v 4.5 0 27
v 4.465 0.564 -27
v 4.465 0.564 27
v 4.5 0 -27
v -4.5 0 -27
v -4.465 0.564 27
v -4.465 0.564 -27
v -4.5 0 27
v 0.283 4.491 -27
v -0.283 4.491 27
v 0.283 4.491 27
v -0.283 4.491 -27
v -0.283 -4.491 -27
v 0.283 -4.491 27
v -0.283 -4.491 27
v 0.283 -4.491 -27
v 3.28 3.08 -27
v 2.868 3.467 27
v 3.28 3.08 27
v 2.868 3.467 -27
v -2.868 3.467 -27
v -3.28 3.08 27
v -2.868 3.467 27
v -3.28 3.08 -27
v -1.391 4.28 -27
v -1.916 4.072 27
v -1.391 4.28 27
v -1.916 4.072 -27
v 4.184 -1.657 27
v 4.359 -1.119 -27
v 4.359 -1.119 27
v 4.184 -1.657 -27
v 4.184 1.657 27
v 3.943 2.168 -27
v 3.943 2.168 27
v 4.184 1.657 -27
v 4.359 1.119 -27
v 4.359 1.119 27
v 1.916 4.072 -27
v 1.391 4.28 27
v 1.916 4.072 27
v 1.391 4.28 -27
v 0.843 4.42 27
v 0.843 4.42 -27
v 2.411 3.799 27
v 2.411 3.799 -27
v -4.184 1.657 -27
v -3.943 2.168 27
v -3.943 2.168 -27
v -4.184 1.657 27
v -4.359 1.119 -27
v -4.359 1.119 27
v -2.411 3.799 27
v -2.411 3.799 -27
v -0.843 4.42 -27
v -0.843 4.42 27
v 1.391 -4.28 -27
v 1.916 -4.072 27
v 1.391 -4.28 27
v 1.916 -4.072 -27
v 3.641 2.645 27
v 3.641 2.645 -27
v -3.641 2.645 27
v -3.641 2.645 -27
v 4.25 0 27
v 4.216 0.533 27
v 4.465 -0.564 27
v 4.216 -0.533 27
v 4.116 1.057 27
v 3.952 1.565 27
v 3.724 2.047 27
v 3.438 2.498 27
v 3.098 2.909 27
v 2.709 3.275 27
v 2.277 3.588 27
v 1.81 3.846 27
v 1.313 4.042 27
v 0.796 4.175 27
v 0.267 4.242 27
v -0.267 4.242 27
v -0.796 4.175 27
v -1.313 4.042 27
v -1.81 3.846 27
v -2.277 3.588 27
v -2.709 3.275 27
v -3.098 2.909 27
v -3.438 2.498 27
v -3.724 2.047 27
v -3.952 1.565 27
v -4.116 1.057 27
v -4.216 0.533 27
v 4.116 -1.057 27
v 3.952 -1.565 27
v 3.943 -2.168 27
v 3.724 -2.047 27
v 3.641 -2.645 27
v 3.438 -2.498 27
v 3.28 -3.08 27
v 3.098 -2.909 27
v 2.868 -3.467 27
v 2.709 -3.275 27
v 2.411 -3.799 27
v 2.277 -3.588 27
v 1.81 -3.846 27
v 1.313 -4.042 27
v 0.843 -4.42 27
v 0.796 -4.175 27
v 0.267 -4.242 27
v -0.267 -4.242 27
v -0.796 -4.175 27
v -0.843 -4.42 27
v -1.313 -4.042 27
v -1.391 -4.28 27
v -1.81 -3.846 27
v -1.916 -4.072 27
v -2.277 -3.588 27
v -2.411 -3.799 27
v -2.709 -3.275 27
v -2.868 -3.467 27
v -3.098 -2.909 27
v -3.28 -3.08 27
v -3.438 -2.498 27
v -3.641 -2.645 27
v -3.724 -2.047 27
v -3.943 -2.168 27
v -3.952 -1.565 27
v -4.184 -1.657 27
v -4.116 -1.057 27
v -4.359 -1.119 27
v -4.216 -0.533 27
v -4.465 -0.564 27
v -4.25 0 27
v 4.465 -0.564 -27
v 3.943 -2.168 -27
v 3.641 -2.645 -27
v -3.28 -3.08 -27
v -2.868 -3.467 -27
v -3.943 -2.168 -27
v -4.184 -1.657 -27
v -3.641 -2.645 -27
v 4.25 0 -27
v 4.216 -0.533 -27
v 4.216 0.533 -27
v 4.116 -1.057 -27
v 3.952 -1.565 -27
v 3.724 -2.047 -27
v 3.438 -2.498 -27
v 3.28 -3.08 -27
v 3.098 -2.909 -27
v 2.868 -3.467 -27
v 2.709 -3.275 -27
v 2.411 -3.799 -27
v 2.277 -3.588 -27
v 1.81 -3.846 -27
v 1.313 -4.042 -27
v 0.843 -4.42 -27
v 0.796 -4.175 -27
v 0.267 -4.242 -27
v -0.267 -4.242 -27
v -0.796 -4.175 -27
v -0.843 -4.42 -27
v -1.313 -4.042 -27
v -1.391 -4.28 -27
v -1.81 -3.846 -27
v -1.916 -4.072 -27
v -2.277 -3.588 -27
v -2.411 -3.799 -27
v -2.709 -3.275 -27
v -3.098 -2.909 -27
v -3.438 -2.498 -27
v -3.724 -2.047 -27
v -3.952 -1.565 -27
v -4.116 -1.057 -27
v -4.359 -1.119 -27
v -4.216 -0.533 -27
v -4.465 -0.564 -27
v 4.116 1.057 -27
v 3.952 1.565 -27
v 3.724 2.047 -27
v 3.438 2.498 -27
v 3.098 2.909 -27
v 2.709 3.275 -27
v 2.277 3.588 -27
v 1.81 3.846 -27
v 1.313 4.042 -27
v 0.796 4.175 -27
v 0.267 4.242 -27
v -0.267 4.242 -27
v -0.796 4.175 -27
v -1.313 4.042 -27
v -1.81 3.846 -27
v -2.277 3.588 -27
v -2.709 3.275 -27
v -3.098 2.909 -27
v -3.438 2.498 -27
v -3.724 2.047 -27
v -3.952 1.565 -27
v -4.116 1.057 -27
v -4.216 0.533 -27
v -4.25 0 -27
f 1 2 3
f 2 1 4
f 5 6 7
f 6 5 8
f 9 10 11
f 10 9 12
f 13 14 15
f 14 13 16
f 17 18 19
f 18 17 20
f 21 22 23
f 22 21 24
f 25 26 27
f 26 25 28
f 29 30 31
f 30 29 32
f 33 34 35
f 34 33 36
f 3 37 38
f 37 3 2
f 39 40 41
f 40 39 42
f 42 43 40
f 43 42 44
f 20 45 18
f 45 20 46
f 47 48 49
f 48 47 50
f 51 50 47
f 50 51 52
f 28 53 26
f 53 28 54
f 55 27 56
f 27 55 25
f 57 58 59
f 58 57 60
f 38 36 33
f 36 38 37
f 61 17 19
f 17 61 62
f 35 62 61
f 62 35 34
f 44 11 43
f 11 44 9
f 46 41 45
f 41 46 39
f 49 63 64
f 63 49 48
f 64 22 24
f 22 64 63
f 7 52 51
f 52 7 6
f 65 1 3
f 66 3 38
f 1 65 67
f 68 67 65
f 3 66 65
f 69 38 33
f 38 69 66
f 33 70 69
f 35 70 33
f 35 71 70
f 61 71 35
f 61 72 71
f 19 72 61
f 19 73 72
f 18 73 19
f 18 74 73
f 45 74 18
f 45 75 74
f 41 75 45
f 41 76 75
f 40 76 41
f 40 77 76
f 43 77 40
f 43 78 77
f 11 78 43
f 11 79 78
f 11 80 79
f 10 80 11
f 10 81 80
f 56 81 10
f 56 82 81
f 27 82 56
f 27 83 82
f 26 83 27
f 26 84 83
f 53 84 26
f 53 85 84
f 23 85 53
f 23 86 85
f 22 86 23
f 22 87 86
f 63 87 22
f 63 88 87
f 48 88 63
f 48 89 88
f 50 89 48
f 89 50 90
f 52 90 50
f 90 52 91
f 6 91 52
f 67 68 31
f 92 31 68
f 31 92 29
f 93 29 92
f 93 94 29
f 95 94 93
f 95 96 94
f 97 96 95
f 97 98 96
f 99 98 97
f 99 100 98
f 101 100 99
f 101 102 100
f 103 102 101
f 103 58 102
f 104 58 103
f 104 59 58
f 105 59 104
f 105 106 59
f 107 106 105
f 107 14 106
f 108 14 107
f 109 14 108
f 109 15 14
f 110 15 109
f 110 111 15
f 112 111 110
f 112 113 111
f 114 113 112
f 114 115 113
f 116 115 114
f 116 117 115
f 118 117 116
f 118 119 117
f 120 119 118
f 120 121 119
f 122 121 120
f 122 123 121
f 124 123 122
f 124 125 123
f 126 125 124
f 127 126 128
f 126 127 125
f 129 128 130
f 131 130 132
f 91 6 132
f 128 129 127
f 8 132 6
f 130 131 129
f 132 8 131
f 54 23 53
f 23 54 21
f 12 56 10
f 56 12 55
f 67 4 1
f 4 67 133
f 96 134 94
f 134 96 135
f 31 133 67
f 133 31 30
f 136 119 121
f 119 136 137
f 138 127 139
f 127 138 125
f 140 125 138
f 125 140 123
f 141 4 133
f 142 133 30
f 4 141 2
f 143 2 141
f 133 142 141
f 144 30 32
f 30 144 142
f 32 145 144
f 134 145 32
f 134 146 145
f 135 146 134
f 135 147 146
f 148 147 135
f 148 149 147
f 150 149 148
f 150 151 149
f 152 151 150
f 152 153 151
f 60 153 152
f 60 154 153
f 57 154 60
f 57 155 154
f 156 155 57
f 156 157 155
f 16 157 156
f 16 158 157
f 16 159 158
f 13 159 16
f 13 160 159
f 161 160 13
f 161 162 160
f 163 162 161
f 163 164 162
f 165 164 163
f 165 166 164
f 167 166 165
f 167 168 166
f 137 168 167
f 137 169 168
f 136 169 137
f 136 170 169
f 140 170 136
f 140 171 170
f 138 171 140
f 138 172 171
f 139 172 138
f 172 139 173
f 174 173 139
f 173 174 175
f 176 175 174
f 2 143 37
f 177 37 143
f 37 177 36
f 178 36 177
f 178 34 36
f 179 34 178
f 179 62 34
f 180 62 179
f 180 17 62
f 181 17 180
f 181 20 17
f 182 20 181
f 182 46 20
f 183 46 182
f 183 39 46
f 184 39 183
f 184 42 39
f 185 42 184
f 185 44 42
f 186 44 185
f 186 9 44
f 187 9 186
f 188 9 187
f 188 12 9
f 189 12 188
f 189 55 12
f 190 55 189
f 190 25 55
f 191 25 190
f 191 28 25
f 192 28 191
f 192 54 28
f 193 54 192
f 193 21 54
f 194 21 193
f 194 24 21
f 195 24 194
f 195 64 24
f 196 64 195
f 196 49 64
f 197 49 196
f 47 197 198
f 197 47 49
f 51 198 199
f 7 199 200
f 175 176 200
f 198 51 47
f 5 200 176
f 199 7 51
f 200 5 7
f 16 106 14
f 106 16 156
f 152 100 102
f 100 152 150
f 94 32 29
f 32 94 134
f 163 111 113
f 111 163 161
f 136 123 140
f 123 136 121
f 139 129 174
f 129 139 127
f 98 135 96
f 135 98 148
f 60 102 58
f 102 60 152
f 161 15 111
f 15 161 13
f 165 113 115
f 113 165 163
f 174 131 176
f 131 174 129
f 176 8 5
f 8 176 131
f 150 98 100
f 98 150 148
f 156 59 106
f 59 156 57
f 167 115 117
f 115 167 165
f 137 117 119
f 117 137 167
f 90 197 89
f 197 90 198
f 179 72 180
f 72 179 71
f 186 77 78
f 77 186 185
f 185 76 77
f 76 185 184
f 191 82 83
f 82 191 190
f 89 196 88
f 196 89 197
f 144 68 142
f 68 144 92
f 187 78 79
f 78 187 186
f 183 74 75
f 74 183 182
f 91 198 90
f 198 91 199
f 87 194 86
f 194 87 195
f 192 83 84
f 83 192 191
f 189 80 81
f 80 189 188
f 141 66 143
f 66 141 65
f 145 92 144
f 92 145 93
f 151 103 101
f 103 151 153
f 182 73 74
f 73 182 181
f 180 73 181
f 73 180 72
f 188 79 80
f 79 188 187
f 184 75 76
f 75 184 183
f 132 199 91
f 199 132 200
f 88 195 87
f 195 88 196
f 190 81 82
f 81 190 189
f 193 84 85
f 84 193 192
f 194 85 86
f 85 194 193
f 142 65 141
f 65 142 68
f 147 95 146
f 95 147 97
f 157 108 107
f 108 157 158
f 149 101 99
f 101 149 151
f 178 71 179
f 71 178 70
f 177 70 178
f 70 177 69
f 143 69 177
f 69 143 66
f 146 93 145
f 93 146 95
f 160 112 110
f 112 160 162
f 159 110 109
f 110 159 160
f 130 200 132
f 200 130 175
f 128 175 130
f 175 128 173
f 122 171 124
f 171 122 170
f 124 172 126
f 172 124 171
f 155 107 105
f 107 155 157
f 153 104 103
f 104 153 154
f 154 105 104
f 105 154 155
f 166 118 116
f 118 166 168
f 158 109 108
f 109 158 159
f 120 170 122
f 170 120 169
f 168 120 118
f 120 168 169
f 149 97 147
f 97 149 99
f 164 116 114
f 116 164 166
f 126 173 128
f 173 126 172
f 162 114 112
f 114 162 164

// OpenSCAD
$fn = 50;


difference() {
	union() {
		translate(v = [0, 0, -27.0000000000]) {
			cylinder(h = 54, r = 4.5000000000);
		}
	}
	union() {
		translate(v = [0, 0, -100.0000000000]) {
			cylinder(h = 200, r = 4.2500000000);
		}
	}
}
